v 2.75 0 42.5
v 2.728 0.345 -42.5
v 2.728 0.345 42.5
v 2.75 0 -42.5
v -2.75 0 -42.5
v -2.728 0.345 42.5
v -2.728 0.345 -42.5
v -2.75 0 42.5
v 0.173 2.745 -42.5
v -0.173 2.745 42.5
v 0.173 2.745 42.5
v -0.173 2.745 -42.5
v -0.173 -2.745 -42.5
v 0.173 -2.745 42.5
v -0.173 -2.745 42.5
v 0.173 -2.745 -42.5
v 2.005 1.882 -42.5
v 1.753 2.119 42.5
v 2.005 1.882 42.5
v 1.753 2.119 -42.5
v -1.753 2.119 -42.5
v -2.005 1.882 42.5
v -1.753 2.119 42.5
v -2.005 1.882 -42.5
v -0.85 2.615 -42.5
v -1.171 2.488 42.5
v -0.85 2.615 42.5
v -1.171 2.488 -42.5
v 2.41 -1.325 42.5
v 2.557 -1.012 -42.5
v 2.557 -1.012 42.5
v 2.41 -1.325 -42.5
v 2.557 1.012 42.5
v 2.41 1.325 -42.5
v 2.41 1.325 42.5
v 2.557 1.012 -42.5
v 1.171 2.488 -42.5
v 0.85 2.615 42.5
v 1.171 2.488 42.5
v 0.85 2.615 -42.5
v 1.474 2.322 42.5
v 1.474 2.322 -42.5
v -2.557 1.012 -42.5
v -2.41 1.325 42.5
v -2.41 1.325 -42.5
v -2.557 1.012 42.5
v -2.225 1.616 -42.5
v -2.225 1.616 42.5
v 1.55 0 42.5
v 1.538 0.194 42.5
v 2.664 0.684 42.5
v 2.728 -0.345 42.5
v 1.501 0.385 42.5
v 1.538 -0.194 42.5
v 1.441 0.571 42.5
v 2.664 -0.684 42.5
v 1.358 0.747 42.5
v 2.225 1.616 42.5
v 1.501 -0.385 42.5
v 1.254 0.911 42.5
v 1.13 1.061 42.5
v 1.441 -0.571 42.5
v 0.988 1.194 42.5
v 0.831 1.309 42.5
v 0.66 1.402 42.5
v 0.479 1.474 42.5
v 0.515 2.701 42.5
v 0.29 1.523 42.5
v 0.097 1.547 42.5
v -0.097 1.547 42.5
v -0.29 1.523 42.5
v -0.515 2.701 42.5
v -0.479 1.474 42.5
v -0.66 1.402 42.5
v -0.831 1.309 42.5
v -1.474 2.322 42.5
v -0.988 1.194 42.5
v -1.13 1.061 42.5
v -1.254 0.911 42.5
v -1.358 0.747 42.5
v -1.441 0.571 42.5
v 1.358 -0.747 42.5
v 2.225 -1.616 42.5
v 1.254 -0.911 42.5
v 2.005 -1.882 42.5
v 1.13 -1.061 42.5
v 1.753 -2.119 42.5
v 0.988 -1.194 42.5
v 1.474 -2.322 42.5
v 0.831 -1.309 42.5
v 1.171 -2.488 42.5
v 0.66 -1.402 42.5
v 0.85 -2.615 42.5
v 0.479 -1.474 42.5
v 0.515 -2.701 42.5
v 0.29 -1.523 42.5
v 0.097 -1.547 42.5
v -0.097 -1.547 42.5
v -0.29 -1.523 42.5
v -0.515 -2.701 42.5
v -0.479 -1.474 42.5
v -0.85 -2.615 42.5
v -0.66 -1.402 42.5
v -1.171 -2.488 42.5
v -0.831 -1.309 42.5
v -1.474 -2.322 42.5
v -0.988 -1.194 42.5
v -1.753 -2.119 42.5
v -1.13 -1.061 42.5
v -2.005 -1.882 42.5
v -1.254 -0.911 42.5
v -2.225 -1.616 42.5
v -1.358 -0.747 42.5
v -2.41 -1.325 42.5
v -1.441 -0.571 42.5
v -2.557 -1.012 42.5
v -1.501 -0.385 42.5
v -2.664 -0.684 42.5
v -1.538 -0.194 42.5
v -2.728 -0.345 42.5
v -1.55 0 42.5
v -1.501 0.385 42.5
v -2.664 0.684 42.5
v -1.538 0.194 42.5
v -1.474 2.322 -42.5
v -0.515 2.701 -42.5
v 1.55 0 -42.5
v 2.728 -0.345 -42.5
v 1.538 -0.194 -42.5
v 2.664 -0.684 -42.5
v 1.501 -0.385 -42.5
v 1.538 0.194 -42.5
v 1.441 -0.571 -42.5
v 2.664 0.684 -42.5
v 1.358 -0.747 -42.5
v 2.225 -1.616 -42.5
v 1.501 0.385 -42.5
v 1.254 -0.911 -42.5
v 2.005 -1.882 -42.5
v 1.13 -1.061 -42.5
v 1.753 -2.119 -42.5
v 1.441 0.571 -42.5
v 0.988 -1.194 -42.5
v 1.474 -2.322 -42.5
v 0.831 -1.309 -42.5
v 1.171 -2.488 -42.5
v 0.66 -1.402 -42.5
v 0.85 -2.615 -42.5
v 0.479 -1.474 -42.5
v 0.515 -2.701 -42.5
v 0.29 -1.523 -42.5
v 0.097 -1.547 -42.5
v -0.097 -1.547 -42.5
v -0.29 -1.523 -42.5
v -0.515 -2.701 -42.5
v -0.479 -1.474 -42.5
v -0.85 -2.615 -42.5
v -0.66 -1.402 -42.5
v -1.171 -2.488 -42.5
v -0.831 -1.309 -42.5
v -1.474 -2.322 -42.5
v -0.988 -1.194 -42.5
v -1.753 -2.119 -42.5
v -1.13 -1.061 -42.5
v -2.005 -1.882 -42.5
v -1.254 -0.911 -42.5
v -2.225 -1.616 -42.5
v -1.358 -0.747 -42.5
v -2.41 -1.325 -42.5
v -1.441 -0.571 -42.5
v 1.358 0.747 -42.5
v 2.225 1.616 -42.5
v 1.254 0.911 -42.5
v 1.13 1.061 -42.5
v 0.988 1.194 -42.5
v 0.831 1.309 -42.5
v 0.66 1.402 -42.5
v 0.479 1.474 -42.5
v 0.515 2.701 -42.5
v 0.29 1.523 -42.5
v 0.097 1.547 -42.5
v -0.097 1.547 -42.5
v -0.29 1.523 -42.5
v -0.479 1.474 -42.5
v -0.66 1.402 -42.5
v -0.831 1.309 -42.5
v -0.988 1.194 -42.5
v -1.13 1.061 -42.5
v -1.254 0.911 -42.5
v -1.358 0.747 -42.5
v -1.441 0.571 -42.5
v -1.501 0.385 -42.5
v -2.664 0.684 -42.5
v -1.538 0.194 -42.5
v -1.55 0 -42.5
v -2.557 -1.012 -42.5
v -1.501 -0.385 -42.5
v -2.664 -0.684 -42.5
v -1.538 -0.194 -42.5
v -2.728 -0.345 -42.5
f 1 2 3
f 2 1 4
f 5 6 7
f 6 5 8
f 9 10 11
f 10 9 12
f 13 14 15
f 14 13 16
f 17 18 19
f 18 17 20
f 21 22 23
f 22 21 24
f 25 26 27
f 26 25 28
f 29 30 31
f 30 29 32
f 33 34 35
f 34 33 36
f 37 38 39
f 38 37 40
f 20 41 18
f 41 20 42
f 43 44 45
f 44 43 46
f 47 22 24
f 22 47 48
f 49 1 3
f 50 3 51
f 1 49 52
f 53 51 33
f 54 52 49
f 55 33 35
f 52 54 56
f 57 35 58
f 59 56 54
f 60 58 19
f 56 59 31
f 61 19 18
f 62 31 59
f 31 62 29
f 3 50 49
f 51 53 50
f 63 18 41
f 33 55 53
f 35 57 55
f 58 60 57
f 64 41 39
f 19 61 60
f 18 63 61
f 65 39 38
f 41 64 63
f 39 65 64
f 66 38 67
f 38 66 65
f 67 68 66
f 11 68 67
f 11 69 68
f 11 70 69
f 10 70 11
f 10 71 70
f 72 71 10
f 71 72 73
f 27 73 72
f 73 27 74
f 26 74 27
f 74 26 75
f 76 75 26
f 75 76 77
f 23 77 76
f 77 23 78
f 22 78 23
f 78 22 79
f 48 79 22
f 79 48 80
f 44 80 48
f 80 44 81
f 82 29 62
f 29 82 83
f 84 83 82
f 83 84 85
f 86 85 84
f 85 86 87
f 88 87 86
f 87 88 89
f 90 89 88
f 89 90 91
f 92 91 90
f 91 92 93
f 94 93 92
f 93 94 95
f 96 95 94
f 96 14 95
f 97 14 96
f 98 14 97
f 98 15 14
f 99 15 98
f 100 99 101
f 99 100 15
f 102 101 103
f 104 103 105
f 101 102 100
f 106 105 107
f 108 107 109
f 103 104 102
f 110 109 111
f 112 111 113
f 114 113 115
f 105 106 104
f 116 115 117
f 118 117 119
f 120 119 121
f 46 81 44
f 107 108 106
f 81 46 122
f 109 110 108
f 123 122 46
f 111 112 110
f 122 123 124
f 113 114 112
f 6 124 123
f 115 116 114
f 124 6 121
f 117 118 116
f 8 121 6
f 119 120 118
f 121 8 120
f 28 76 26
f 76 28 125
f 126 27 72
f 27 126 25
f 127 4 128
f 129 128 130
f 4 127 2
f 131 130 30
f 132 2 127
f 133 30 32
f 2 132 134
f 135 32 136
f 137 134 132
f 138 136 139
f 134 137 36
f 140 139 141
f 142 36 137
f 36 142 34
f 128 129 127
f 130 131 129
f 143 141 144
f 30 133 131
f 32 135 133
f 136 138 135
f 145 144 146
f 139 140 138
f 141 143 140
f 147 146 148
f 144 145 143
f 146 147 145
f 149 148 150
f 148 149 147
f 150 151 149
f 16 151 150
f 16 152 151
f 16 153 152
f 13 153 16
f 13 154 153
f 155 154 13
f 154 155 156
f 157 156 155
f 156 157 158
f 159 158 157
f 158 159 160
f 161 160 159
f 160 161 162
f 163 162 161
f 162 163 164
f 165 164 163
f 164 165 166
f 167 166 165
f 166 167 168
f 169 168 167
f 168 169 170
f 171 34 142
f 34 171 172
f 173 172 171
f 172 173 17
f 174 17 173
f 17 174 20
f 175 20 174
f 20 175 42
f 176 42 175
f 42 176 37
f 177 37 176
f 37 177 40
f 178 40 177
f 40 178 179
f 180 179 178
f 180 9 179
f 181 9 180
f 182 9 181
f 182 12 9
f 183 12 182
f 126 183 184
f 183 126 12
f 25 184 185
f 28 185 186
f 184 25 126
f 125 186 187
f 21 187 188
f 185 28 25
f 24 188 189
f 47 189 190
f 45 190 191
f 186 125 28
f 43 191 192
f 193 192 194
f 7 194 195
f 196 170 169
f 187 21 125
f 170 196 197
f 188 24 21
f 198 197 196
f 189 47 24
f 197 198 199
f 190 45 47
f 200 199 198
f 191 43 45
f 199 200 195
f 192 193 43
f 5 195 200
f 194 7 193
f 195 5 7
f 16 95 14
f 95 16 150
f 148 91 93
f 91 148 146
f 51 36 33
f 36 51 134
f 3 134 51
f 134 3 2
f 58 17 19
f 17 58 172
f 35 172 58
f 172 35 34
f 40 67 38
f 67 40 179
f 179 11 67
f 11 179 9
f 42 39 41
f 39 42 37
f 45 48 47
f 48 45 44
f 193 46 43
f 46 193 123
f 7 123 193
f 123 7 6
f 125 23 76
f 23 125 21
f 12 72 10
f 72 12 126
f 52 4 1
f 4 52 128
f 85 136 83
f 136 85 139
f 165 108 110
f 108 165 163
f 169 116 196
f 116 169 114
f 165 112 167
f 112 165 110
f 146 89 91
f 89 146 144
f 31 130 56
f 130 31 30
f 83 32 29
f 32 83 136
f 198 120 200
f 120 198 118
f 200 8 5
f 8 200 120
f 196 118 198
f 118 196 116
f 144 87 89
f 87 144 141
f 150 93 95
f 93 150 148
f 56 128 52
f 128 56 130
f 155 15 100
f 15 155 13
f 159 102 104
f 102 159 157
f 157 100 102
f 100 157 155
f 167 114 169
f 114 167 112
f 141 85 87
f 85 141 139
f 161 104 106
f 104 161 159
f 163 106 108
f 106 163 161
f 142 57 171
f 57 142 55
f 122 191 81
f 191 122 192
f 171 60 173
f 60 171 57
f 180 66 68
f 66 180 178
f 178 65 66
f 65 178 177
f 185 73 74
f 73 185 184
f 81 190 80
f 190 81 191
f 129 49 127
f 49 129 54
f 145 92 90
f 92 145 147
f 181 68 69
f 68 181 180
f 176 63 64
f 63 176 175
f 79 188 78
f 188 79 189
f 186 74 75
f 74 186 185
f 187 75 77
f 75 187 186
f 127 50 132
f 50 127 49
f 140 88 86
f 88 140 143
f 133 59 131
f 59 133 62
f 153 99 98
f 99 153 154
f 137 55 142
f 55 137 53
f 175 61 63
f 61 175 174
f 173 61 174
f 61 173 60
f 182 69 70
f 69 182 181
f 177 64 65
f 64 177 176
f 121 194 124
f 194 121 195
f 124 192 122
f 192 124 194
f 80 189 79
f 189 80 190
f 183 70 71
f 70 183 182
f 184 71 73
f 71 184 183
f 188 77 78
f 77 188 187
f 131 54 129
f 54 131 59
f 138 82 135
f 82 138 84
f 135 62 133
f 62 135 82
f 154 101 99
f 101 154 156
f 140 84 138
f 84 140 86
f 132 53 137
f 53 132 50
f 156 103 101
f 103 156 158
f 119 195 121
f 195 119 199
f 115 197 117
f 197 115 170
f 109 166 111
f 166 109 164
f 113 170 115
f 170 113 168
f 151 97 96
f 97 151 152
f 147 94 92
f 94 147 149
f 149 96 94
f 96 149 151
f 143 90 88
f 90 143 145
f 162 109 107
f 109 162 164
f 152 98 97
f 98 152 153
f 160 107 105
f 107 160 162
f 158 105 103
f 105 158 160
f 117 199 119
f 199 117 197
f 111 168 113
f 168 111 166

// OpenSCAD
$fn = 50;


difference() {
	union() {
		translate(v = [0, 0, -42.5000000000]) {
			cylinder(h = 85, r = 2.7500000000);
		}
	}
	union() {
		translate(v = [0, 0, -100.0000000000]) {
			cylinder(h = 200, r = 1.5500000000);
		}
	}
}
